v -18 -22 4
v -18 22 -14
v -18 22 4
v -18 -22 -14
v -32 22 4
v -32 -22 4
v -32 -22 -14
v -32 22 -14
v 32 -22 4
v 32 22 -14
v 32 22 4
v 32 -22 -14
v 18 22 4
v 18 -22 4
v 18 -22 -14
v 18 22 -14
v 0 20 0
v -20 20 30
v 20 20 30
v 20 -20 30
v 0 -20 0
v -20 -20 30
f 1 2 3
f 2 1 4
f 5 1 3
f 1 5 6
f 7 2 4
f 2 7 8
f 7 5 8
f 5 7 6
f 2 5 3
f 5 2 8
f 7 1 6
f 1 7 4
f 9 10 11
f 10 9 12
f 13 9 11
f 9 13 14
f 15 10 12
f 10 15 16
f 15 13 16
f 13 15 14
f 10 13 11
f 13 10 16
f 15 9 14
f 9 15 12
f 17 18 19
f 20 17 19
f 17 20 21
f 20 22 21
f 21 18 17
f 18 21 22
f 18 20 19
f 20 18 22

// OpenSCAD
// file: _common.scad
// mechanism 共用設定 + 齒輪 module
$fn = 60;

// 簡化齒輪：N 個齒、節圓半徑 r、齒高 h、齒寬 w
module simple_gear(N = 16, r = 20, h = 4, thick = 6) {
  union() {
    // 主圓盤
    cylinder(h = thick, r = r, center = true);
    // 齒（梯形）
    for (i = [0:N-1]) {
      rotate([0, 0, i * 360 / N])
        translate([r, 0, 0])
          linear_extrude(height = thick, center = true)
            polygon([[0, -2.4], [h, -1.4], [h, 1.4], [0, 2.4]]);
    }
    // 中心凸軸
    cylinder(h = thick * 1.4, r = r * 0.18, center = true);
  }
}
// main file
// 楔形 Wedge — 兩個斜面背靠背組成的劈刀／斧頭刀刃
include <_common.scad>

// 楔形主體（三角形截面立在 XZ 平面：上方寬 40、下方收成刃口；沿 Y 深 40）
// 刃口在 z = 0，剛好插進下方木塊頂面（z = 4）的裂縫裡
// 舊版把三角形畫在 XY 水平面，楔形躺平且 z∈[-20,20] 穿到木塊底下
color([0.86, 0.15, 0.46])
  rotate([90, 0, 0]) linear_extrude(height = 40, center = true)
    polygon([[-20, 30], [20, 30], [0, 0]]);

// 被劈開的木塊（在楔形下方，象徵被劈開）
color([0.62, 0.27, 0.12]) {
  // 左半
  translate([-32, -22, -14]) cube([14, 44, 18]);
  // 右半（往外推）
  translate([18, -22, -14]) cube([14, 44, 18]);
}
